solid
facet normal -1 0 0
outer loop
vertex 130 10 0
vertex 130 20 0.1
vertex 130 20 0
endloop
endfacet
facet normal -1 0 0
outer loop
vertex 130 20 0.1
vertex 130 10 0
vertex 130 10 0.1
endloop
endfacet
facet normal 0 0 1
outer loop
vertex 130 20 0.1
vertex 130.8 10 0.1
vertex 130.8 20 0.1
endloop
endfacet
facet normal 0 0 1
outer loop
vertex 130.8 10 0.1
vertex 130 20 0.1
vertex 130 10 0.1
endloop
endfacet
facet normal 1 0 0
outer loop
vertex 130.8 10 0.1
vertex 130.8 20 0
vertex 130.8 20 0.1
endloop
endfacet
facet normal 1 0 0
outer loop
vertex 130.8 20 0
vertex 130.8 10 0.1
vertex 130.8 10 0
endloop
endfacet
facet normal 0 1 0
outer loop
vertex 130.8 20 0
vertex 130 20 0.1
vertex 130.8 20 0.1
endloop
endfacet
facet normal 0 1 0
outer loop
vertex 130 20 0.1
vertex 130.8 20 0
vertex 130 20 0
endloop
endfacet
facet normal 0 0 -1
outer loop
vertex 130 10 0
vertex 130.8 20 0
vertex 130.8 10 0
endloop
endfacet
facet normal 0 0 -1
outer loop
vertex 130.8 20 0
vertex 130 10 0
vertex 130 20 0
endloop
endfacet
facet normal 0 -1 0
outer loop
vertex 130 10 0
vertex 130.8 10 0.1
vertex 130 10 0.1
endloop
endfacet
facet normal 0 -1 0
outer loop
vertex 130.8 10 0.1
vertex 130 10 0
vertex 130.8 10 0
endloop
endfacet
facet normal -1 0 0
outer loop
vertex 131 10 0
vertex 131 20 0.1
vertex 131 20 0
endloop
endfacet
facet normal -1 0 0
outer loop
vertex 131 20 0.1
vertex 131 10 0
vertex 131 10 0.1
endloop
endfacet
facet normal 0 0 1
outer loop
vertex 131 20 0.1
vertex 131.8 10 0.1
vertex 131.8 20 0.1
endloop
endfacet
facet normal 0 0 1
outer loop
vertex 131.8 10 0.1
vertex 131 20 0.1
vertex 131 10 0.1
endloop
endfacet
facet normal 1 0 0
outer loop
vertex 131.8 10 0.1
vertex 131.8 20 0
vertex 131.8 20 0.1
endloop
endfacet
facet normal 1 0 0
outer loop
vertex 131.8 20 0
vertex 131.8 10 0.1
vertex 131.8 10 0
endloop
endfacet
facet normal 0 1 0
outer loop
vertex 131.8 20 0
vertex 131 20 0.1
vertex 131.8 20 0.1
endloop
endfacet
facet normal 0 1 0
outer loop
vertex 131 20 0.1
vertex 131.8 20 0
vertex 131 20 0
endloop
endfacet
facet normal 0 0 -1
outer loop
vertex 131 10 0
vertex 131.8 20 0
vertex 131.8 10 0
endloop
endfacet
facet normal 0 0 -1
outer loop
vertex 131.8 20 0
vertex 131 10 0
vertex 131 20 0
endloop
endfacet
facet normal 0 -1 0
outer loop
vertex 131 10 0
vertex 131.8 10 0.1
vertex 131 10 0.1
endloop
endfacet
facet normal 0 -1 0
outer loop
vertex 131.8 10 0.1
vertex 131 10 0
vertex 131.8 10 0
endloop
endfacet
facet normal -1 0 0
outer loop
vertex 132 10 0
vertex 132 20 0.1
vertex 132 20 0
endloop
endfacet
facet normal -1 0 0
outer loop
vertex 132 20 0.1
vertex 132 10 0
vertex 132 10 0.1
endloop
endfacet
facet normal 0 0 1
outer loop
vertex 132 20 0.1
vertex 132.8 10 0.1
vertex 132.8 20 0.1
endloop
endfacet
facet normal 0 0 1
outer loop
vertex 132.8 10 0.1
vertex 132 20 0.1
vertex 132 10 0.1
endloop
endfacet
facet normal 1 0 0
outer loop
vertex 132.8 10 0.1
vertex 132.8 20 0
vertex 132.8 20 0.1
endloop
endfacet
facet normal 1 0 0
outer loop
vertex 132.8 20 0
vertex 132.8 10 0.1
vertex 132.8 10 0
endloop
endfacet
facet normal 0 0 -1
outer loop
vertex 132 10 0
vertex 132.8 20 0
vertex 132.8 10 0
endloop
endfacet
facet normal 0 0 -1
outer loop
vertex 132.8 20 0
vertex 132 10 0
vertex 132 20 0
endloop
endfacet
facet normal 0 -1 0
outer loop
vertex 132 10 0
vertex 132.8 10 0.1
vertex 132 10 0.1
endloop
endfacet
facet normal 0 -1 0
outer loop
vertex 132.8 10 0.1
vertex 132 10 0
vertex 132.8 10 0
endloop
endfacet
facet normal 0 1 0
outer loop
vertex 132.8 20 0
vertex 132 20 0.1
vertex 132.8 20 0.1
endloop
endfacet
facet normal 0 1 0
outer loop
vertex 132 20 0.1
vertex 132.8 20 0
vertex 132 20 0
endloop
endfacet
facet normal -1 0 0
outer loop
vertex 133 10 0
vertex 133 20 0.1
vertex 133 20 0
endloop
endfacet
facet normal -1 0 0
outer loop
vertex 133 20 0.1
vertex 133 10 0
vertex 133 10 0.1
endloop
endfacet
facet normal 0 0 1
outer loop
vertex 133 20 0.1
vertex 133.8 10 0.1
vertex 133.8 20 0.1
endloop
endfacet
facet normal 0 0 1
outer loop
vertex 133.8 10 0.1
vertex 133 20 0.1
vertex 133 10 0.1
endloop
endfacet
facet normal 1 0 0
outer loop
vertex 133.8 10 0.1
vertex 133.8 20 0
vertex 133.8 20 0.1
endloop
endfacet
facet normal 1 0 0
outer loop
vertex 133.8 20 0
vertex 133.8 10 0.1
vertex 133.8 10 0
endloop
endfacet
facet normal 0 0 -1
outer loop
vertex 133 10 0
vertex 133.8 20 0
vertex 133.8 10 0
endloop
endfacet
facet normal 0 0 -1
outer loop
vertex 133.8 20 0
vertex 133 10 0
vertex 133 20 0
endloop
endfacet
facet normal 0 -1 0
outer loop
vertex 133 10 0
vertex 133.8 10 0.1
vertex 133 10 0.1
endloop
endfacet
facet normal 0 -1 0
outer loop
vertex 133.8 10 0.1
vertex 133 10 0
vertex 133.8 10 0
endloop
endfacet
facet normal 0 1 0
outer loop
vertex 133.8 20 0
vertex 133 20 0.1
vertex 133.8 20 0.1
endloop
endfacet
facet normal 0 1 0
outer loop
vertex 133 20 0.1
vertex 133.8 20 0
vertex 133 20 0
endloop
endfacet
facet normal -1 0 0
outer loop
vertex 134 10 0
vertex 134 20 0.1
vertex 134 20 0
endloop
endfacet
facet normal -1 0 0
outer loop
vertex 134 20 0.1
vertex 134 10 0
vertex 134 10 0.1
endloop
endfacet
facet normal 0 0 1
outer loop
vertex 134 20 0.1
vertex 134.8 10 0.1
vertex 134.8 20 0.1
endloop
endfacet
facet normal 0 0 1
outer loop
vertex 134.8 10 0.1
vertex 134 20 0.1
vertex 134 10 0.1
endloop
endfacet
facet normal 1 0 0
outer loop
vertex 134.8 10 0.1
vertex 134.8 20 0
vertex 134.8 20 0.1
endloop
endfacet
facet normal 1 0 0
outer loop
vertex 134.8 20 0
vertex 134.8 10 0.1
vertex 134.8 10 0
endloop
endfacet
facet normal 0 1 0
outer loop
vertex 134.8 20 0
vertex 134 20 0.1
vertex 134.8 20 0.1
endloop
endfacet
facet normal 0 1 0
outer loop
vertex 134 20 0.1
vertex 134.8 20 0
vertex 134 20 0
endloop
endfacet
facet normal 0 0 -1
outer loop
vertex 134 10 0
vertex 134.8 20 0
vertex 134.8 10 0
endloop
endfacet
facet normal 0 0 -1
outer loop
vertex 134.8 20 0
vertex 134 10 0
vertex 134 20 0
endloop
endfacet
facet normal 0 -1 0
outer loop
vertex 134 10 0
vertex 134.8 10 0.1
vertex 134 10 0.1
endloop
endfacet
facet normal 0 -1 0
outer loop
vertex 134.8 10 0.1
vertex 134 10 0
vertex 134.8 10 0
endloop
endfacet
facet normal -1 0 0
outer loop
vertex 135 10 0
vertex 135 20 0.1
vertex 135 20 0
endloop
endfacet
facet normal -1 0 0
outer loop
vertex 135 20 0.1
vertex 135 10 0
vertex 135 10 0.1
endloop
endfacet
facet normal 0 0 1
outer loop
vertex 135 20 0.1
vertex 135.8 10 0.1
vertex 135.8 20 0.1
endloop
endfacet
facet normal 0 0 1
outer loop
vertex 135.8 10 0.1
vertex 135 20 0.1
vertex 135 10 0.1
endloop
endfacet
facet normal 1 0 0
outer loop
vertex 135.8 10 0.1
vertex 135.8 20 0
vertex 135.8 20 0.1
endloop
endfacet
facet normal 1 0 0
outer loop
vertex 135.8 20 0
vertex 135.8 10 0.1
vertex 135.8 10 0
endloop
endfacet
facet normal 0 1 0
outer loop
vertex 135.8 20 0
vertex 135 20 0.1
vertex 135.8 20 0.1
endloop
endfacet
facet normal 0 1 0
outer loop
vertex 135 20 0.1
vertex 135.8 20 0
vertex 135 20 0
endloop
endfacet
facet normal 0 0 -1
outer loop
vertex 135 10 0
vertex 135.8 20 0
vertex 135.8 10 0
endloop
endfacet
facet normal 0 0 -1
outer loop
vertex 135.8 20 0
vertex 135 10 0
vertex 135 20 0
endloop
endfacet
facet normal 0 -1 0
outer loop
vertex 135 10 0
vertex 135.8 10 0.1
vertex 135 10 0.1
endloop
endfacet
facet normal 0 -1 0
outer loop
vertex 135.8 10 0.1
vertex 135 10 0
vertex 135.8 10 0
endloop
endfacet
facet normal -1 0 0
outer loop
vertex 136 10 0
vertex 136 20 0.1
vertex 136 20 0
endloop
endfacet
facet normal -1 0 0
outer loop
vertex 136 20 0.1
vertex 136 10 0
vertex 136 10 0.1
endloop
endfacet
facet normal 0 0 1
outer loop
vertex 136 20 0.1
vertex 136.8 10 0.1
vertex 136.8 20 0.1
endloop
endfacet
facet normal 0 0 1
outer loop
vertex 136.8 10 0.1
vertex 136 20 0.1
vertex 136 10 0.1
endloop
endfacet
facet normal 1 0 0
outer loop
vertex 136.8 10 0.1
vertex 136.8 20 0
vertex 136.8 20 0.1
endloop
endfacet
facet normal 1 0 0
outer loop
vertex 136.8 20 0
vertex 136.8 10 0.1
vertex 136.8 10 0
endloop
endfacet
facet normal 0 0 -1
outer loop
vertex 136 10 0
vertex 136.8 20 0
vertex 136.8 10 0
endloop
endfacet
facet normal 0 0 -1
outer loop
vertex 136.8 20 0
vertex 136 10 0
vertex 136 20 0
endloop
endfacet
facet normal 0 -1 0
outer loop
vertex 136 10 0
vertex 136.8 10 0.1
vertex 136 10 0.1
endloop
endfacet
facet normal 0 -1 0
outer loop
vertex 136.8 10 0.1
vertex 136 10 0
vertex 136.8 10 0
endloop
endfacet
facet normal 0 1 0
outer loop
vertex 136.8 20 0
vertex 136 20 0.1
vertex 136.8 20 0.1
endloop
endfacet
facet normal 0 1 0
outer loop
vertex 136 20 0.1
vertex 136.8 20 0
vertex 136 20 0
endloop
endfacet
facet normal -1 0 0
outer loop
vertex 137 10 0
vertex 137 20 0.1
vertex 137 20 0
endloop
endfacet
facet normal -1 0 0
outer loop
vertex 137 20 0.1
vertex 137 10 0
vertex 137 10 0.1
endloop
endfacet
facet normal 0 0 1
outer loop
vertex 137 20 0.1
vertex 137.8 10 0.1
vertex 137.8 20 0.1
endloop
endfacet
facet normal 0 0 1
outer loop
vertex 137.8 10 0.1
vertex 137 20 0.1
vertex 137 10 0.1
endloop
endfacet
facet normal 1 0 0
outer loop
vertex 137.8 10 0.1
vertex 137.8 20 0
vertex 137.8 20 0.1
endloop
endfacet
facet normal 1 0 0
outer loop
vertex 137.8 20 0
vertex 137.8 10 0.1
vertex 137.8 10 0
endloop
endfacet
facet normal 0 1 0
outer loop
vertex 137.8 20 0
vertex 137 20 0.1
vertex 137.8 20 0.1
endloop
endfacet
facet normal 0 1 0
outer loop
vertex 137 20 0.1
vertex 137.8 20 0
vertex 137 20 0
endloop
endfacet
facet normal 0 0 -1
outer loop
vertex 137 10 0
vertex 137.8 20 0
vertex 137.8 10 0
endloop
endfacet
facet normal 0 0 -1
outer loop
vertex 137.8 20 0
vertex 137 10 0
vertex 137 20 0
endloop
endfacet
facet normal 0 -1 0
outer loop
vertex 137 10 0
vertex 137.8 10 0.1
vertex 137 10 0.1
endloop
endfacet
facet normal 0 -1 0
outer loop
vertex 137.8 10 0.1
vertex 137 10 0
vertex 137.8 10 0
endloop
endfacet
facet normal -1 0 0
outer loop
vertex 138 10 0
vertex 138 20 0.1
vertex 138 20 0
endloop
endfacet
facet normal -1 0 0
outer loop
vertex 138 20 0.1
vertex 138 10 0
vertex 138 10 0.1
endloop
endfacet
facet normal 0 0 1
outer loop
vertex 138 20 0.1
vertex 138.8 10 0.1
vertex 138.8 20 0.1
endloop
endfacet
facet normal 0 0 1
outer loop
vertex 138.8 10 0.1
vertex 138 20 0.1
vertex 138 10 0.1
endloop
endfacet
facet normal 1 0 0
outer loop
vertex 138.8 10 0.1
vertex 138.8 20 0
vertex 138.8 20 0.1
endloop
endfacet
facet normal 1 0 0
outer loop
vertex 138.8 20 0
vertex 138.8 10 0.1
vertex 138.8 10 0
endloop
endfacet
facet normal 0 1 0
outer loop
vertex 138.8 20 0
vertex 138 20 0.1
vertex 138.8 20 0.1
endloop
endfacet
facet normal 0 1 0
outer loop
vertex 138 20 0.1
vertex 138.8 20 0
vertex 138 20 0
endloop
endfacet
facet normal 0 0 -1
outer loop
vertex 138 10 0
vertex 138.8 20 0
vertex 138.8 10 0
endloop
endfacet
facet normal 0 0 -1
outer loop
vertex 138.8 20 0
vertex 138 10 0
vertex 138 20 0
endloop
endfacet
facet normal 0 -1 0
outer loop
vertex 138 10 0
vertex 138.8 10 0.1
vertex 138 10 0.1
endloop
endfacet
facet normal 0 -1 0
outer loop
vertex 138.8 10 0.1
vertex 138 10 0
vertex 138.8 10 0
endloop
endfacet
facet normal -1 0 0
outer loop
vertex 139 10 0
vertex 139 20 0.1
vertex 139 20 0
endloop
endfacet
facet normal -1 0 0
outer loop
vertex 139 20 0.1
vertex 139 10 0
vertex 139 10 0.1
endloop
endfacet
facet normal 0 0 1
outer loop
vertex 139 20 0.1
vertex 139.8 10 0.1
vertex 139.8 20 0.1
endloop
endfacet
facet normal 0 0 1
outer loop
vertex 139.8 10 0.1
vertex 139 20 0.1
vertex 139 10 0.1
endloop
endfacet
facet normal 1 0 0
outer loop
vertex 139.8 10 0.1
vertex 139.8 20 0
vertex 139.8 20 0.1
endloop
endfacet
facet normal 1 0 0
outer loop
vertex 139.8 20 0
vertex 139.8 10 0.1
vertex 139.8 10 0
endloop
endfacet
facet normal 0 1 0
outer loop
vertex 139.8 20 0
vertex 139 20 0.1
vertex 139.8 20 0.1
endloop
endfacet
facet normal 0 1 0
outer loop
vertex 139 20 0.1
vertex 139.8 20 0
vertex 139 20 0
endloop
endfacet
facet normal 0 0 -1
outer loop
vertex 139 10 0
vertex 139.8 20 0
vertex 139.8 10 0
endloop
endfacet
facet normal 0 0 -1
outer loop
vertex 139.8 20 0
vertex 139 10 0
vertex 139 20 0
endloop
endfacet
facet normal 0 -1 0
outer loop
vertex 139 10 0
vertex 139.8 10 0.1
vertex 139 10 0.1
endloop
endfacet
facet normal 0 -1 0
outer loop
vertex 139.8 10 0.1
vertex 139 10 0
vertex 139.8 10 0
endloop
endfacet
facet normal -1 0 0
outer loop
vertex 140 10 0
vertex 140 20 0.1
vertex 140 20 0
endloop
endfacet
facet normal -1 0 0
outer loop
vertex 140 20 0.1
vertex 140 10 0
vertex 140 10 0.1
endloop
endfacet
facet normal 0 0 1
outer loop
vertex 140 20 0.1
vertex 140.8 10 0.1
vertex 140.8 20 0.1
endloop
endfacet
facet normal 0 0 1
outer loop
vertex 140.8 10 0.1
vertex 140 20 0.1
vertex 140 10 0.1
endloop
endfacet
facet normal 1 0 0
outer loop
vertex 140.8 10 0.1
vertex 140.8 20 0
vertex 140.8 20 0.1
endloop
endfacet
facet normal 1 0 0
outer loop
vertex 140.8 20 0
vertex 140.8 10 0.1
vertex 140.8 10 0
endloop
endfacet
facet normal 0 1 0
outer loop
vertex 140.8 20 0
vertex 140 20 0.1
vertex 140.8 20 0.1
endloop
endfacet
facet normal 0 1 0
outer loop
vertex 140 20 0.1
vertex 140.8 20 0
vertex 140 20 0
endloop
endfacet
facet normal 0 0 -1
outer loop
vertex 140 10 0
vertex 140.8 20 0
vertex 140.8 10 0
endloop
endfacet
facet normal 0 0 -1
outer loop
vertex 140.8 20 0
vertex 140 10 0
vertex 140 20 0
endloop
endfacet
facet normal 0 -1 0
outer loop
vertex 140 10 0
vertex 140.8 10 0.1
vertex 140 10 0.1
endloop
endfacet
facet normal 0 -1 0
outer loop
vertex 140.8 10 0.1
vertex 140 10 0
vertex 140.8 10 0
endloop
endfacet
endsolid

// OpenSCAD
translate([10+120,10+0,0])
        for (i = [0 : 10]){
            translate([i,0,0])
                cube(size = [0.8,10,0.1]);
    }
